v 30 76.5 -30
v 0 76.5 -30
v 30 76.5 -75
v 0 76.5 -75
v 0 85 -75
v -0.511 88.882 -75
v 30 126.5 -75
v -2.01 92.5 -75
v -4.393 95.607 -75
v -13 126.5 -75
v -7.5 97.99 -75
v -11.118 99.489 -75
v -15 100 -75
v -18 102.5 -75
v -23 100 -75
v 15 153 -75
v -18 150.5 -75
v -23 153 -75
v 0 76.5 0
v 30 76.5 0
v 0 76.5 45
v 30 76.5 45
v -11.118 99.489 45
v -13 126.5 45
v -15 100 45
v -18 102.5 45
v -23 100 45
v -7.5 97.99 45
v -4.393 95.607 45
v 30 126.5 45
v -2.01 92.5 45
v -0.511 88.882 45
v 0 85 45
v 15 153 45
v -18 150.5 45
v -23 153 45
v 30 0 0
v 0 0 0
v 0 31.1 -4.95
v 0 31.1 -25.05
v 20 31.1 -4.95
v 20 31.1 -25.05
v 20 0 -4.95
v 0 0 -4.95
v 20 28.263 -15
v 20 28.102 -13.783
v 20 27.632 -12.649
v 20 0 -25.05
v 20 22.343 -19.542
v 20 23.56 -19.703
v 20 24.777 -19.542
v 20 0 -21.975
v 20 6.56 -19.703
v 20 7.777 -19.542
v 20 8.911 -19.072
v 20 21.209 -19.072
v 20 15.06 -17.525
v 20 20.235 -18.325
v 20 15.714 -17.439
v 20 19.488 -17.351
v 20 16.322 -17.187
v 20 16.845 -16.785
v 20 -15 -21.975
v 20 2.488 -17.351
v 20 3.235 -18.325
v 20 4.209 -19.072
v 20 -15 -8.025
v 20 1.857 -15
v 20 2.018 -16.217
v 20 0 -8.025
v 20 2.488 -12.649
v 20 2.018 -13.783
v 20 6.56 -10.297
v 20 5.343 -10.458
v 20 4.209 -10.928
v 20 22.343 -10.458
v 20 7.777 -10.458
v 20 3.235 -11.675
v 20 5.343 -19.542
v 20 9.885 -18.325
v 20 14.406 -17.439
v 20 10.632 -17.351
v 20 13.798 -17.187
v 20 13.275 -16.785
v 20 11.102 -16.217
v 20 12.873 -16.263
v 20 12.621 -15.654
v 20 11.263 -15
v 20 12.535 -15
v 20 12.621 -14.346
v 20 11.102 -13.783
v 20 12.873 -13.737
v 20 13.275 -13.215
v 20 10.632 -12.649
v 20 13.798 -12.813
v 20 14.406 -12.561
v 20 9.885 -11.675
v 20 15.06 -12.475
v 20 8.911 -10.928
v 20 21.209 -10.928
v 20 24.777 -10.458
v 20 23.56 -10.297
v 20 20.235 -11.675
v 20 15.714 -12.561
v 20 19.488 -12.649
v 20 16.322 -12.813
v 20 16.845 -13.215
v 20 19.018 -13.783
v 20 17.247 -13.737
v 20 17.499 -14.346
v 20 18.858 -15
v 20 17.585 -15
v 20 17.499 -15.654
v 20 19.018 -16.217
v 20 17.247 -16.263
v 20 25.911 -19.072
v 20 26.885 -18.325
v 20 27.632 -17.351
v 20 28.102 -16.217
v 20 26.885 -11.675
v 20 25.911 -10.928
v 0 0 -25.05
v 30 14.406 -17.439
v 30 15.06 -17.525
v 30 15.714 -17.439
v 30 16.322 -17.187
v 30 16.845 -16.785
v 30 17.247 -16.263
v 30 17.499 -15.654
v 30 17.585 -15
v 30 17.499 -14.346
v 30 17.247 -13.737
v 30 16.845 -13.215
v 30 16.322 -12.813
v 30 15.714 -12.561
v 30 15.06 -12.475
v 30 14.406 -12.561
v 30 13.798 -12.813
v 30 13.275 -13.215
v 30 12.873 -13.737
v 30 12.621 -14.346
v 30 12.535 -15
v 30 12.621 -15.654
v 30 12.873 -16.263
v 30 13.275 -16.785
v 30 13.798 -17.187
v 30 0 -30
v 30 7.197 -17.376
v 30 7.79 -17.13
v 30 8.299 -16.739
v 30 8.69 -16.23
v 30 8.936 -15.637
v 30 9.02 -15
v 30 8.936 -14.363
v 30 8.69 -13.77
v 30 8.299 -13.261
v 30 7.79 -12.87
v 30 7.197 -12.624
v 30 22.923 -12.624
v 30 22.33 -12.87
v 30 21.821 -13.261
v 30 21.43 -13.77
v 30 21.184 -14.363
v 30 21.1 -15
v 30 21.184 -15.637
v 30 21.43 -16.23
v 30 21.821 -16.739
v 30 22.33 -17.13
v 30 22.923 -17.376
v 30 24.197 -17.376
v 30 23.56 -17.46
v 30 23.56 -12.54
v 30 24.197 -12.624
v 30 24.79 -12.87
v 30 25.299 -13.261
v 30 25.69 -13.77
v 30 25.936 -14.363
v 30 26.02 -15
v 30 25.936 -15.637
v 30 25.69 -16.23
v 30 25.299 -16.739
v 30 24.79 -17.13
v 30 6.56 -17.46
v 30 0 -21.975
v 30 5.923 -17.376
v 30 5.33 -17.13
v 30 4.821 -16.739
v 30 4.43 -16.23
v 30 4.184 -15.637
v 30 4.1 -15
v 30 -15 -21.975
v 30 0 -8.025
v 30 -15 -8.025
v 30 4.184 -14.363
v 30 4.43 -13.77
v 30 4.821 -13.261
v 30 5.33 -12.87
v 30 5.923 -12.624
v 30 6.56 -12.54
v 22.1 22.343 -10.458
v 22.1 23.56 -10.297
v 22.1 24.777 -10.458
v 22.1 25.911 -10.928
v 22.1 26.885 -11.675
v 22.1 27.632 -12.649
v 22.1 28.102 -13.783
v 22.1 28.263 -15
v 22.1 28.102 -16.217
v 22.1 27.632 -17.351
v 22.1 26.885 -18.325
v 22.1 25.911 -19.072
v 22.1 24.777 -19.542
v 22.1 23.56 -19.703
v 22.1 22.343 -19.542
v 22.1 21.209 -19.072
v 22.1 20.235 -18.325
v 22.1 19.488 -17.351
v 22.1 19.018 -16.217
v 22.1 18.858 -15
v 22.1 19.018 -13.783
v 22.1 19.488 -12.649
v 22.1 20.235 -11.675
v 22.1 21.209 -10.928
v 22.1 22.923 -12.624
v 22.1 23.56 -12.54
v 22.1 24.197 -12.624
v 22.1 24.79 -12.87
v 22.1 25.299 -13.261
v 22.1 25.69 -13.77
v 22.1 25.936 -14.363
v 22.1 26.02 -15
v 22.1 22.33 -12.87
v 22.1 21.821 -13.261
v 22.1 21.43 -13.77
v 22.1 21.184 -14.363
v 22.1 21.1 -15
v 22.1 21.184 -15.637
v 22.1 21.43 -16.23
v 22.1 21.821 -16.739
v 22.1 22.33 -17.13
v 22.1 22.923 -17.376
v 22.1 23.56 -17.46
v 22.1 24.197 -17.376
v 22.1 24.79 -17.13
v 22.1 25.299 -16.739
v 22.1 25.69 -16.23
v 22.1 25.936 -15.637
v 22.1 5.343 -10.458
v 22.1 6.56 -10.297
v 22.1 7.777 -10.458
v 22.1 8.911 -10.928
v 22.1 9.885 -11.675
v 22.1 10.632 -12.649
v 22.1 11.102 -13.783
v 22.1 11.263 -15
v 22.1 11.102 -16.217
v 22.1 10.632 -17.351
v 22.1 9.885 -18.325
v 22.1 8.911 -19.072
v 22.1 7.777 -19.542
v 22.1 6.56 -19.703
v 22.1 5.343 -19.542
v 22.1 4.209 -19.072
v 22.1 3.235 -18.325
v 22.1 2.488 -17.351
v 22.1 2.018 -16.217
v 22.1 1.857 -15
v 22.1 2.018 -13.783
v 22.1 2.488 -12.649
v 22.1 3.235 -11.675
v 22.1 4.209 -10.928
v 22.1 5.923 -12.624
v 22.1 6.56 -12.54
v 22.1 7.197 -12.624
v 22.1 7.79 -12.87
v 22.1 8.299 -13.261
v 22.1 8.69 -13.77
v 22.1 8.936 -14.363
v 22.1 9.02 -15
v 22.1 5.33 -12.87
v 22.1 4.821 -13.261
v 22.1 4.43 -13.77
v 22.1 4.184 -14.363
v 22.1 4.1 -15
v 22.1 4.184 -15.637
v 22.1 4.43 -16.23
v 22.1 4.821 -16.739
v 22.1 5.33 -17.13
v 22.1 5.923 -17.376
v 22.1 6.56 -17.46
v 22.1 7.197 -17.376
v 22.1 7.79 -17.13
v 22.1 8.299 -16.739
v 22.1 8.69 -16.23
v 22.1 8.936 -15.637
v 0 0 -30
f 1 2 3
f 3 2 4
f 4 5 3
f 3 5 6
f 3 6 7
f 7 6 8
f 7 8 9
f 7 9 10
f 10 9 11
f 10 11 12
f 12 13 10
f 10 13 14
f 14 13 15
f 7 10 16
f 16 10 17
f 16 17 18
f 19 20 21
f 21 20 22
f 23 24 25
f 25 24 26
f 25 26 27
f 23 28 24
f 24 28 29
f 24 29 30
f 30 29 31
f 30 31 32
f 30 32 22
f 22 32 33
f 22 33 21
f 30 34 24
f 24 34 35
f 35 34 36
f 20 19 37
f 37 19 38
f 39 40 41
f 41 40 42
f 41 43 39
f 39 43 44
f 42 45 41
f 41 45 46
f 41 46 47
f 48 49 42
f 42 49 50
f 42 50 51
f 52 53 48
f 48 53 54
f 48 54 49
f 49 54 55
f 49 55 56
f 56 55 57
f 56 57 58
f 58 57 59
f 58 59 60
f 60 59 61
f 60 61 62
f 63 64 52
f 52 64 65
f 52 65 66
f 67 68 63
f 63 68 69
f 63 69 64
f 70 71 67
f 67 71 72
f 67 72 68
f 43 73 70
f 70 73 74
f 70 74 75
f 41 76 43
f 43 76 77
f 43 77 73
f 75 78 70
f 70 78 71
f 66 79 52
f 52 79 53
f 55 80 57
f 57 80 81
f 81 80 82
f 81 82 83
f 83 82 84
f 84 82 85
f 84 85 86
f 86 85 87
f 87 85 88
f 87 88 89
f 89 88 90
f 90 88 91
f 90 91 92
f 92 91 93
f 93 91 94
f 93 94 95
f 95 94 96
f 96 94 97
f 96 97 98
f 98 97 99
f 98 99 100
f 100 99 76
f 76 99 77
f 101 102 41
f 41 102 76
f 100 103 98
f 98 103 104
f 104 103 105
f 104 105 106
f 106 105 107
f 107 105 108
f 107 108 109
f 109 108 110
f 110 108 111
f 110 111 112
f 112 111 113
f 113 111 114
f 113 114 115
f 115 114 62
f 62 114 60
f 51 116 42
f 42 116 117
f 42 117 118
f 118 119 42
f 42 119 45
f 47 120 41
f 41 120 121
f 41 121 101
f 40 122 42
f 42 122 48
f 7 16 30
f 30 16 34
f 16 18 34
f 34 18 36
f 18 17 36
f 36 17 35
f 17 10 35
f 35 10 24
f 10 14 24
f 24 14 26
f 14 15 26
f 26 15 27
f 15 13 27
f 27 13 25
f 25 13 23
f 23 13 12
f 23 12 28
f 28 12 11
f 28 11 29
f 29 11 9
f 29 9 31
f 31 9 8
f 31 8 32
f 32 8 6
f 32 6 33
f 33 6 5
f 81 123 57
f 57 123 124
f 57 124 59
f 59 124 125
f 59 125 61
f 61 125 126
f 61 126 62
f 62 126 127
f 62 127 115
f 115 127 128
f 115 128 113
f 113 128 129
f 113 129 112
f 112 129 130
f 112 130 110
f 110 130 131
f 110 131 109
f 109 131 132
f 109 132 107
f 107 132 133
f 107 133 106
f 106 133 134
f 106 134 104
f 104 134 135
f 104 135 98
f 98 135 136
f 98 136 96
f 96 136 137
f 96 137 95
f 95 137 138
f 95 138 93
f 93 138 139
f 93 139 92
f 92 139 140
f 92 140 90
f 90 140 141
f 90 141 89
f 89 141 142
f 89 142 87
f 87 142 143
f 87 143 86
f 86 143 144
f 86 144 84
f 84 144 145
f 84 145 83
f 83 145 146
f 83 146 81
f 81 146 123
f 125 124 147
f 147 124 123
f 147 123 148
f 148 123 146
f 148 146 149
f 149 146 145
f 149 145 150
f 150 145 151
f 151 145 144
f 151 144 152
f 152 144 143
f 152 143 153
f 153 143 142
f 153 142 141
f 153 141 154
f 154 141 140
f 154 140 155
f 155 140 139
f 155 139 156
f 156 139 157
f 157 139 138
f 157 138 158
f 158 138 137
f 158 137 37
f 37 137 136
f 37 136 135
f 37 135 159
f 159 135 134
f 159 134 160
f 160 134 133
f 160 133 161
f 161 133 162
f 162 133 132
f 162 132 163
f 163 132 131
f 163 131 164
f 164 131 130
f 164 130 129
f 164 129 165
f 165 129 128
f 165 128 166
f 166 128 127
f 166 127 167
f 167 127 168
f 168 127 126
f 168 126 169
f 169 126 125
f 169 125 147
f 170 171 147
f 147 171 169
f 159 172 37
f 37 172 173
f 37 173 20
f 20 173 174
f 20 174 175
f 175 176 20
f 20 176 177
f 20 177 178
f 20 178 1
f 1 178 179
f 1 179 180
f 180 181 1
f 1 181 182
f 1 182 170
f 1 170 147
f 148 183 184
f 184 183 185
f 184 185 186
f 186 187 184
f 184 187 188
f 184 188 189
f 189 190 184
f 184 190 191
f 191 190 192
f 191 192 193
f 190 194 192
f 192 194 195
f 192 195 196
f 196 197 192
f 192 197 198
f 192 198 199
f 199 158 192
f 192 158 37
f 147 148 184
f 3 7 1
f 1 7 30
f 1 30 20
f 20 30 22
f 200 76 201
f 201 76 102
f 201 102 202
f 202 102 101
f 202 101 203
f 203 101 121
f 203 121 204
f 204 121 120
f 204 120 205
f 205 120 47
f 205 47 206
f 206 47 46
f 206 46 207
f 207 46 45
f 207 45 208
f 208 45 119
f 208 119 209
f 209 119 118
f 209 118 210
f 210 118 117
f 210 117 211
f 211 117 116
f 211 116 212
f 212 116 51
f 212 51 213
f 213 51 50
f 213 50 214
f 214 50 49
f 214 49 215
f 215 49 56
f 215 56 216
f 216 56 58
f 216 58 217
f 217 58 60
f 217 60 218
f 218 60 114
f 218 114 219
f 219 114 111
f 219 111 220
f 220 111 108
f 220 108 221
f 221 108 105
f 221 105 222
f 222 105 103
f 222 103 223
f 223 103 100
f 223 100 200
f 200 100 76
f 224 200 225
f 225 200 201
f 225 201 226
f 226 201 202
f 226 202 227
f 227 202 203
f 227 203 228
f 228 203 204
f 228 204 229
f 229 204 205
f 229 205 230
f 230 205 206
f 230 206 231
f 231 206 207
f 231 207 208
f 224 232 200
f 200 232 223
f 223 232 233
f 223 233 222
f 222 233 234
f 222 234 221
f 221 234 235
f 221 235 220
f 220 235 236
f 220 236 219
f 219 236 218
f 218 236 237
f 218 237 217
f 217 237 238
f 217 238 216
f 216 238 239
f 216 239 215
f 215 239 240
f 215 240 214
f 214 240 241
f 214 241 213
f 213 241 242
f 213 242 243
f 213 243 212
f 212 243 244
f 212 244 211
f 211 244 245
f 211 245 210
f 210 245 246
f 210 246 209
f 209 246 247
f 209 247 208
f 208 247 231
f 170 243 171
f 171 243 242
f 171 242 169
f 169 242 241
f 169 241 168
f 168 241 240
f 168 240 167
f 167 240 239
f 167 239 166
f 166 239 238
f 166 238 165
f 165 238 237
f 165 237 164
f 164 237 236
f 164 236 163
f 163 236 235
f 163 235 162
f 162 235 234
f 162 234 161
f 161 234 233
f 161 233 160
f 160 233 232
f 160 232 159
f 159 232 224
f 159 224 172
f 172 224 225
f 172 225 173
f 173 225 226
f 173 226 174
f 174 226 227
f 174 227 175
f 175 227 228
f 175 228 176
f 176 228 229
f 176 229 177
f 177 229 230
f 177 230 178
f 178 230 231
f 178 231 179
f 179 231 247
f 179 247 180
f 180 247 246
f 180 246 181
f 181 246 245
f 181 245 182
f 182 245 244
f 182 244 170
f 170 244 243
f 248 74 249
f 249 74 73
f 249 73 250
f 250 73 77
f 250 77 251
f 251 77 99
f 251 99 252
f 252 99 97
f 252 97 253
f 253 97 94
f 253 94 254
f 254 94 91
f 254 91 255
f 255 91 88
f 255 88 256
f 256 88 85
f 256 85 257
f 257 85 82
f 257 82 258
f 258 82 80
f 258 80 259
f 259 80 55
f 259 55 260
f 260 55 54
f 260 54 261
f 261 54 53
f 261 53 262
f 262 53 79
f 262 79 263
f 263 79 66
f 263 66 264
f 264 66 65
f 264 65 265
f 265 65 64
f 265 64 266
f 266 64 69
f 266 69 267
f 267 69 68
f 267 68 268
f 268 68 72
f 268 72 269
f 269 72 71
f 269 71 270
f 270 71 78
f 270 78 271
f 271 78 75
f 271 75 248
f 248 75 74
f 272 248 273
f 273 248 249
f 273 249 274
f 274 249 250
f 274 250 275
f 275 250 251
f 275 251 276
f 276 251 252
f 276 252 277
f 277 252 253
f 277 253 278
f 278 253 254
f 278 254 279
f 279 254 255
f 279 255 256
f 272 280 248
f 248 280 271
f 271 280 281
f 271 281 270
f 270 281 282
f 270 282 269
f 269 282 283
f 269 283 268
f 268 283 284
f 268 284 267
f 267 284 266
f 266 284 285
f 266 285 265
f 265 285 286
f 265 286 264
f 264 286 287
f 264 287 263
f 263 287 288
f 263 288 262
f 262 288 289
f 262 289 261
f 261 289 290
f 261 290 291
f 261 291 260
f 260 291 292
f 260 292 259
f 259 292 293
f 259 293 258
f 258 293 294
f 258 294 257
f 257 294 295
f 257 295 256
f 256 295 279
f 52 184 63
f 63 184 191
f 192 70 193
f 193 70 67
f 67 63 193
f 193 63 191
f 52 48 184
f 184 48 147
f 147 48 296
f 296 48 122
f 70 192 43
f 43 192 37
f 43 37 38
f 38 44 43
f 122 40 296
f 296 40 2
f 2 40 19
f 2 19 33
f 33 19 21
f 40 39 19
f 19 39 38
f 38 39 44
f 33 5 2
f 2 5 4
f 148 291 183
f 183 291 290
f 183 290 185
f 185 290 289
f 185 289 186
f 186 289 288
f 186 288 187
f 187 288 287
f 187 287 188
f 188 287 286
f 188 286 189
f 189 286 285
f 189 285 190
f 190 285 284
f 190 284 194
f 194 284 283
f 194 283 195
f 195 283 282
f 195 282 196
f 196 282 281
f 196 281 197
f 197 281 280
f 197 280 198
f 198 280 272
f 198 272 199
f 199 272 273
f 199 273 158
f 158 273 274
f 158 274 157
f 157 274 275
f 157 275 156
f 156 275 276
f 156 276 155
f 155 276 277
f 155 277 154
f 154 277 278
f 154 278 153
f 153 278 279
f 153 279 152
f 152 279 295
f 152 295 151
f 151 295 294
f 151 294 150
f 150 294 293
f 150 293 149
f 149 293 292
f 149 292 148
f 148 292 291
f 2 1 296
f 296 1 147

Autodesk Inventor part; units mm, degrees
ref_plane "YZ Plane" through (0, 0, 0) normal (1, 0, 0) x (0, 1, 0)
ref_plane "XZ Plane" through (0, 0, 0) normal (0, 1, 0) x (-1, 0, 0)
sketch "Sketch1" plane through (0, 0, 0) normal (0, 0, 1) x (1, 0, 0)
  line L0 (0, 0) -> (25, 0)
  line L1 (25, 0) -> (25, 40)
  line L2 (25, 40) -> (0, 40)
  line L3 (0, 40) -> (0, 0)
  dimension "d1" = 25
  dimension "d2" = 40
  dimension "d3" = 25
extrude "Extrusion1" add sketch "Sketch1" against normal blind 30
sketch "Sketch2" plane through (25, 0, 0) normal (1, 0, 0) x (0, 0, -1)
  line L0 (0, 0) -> (30, 0) projected
  circle A0 centre (15, 6.56) radius 2.46
extrude "Extrusion2" cut sketch "Sketch2" against normal blind 30
sketch "Sketch3" plane through (0, 0, 0) normal (-1, 0, 0) x (0, 0, 1)
  line L0 (0, 0) -> (-30, 0) projected
  line L1 (-25.05, 0) -> (-4.95, 0)
  line L2 (-4.95, 0) -> (-4.95, 33.12)
  line L3 (-4.95, 33.12) -> (-25.05, 33.12)
  line L4 (-25.05, 33.12) -> (-25.05, 0)
  dimension "d11" = 20.1
extrude "Extrusion3" cut sketch "Sketch3" against normal blind 20
sketch "Sketch4" plane through (0, 0, 0) normal (0, -1, 0) x (1, 0, 0)
  line L0 (20, -4.95) -> (20, -25.05) projected
  line L1 (20, -15) -> (25, -15)
  line L2 (25, 0) -> (25, -30) projected
  line L3 (20, -8.025) -> (25, -8.025)
  line L4 (25, -8.025) -> (25, -21.975)
  line L5 (25, -21.975) -> (20, -21.975)
  line L6 (20, -21.975) -> (20, -8.025)
  line L7 (20, -8.025) -> (25, -21.975) construction
  line L8 (25, -8.025) -> (20, -21.975) construction
  line L9 (25, -12.54) -> (25, -17.46) projected
  point P0 (0, 0)
  point P1 (22.5, -15)
  dimension "d14" = 13.95
extrude "Extrusion4" add sketch "Sketch4" along normal blind 15
sketch "Sketch5" plane through (20, 0, 0) normal (-1, 0, 0) x (0, 0, 1)
  circle A0 centre (-15, 6.56) radius 2.46 projected
  circle A1 centre (-15, 6.56) radius 4.7025
  circle A2 centre (-15, 6.56) radius 2.46 projected
  circle A3 centre (-15, 6.56) radius 2.46
  point P0 (0, 0)
  dimension "d17" = 9.405
extrude "Extrusion5" cut sketch "Sketch5" against normal blind 2.1
sketch "Sketch6" plane through (25, 0, 0) normal (1, 0, 0) x (0, 0, -1)
  circle A0 centre (15, 6.56) radius 4.7025 projected
  line L0 (15, 6.56) -> (15, 23.56)
  circle A1 centre (15, 23.56) radius 2.46
  point P0 (0, 0)
  dimension "d20" = 17
  dimension "d21" = 4.92
extrude "Extrusion6" cut sketch "Sketch6" against normal blind 10 contours A1
sketch "Sketch7" plane through (20, 0, 0) normal (-1, 0, 0) x (0, 0, 1)
  circle A0 centre (-15, 23.56) radius 2.46 projected
  circle A1 centre (-15, 23.56) radius 4.7025
  point P0 (0, 0)
  dimension "d24" = 9.405
extrude "Extrusion7" cut sketch "Sketch7" against normal blind 2.1
sketch "Sketch9" plane through (25, 0, 0) normal (1, 0, 0) x (0, 0, -1)
  circle A0 centre (15, 6.56) radius 2.46 projected
  circle A1 centre (15, 6.56) radius 2.46
  circle A2 centre (15, 23.56) radius 2.46 projected
  circle A3 centre (15, 23.56) radius 2.46
  line L0 (30, 40) -> (30, 0) projected
  line L1 (30, 0) -> (30, 40)
  line L2 (30, 40) -> (0, 40)
  line L3 (0, 40) -> (0, 0)
  line L4 (0, 0) -> (8.025, 0) projected
  line L5 (21.975, 0) -> (21.975, -15)
  line L6 (21.975, -15) -> (8.025, -15)
  line L7 (8.025, -15) -> (8.025, 0)
  line L8 (0, 0) -> (8.025, 0)
  line L9 (21.975, 0) -> (30, 0)
extrude "Extrusion8" add sketch "Sketch9" along normal blind 5
sketch "Sketch10" plane through (0, 40, 0) normal (0, 1, 0) x (1, 0, 0)
  line L0 (0, 30) -> (30, 30) projected
  line L1 (30, 0) -> (0, 0) projected
  line L2 (0, 30) -> (30, 30)
  line L3 (30, 30) -> (30, 0)
  line L4 (30, 0) -> (0, 0)
  line L5 (0, 0) -> (0, 30)
extrude "Extrusion9" add sketch "Sketch10" along normal blind 30
sketch "Sketch12" plane through (30, 0, 0) normal (1, 0, 0) x (0, 0, -1)
  circle A0 centre (15, 6.56) radius 2.46 projected
  line L0 (15, 6.56) -> (15, 15.06)
  circle A1 centre (15, 15.06) radius 2.525
  point P0 (0, 0)
  dimension "d31" = 8.5
  dimension "d33" = 5.05
extrude "Extrusion10" cut sketch "Sketch12" against normal blind 30 contours A1
sketch "Sketch14" plane through (0, 0, 0) normal (0, 0, 1) x (1, 0, 0)
  line L0 (30, 70) -> (0, 70) projected
  line L1 (0, 70) -> (0, 85)
  line L2 (-15, 100) -> (-23, 100)
  line L3 (30, 0) -> (30, 70) projected
  line L4 (30, 122.5) -> (30, 70)
  arc A0 (0, 85) -> (-15, 100) centre (-15, 85) ccw
  line L5 (30, 105) -> (30, 100)
  line L6 (-23, 153) -> (15, 153)
  line L7 (-18, 150.5) -> (-23, 153)
  line L8 (-18, 102.5) -> (-23, 100)
  line L9 (-18, 102.5) -> (-13, 126.5)
  line L10 (-13, 126.5) -> (-18, 150.5)
  line L11 (30, 126.5) -> (15, 153)
  line L12 (30, 122.5) -> (30, 126.5)
  point P0 (0, 0)
  point P1 (0, 100)
  dimension "d47" = 30
  dimension "d54" = 15
extrude "Extrusion12" add sketch "Sketch14" against normal blind 30
sketch "Sketch15" plane through (0, 0, -25.05) normal (-1, 0, 0) x (0, 0, 1)
  line L0 (0, 33.12) -> (20.1, 33.12) projected
  line L1 (20.1, 33.12) -> (20.1, 0) projected
  line L2 (0, 33.12) -> (20.1, 33.12)
  line L3 (20.1, 33.12) -> (20.1, 31.1)
  line L4 (20.1, 31.1) -> (0, 31.1)
  line L5 (0, 31.1) -> (0, 33.12)
  point P0 (25.05, 0)
  dimension "d57" = 2.02
extrude "Extrusion13" add sketch "Sketch15" against normal blind 20
sketch "Sketch25" plane through (0, 0, 0) normal (0, 0, 1) x (1, 0, 0)
  line L0 (-15, 100) -> (-23, 100) projected
  line L1 (-15, 100) -> (-23, 100)
  line L2 (-23, 100) -> (-18, 102.5) projected
  line L3 (-23, 100) -> (-18, 102.5)
  line L4 (-18, 102.5) -> (-13, 126.5) projected
  line L5 (-18, 102.5) -> (-13, 126.5)
  line L6 (-13, 126.5) -> (-18, 150.5) projected
  line L7 (-13, 126.5) -> (-18, 150.5)
  line L8 (-18, 150.5) -> (-23, 153) projected
  line L9 (-18, 150.5) -> (-23, 153)
  line L10 (-23, 153) -> (15, 153) projected
  line L11 (-23, 153) -> (15, 153)
  line L12 (15, 153) -> (30, 126.5) projected
  line L13 (15, 153) -> (30, 126.5)
  line L14 (30, 126.5) -> (30, 76.5)
  line L15 (30, 0) -> (30, 126.5) projected
  line L16 (30, 76.5) -> (0, 76.5)
  arc A0 (0, 85) -> (-15, 100) centre (-15, 85) ccw projected
  line L17 (0, 76.5) -> (0, 85)
  line L18 (0, 85) -> (0, 0) projected
  arc A1 (0, 85) -> (-15, 100) centre (-15, 85) ccw
  dimension "d90" = 50
extrude "Extrusion14" add sketch "Sketch25" along normal blind 45
ref_plane "Work Plane1" through (0, 0, -15) normal (0, 0, 1) x (1, 0, 0)
mirror "Mirror1" about plane through (0, 0, -15) normal (0, 0, 1) of "Extrusion14"
properties part number "rec_a_48mm_x_120mm"
